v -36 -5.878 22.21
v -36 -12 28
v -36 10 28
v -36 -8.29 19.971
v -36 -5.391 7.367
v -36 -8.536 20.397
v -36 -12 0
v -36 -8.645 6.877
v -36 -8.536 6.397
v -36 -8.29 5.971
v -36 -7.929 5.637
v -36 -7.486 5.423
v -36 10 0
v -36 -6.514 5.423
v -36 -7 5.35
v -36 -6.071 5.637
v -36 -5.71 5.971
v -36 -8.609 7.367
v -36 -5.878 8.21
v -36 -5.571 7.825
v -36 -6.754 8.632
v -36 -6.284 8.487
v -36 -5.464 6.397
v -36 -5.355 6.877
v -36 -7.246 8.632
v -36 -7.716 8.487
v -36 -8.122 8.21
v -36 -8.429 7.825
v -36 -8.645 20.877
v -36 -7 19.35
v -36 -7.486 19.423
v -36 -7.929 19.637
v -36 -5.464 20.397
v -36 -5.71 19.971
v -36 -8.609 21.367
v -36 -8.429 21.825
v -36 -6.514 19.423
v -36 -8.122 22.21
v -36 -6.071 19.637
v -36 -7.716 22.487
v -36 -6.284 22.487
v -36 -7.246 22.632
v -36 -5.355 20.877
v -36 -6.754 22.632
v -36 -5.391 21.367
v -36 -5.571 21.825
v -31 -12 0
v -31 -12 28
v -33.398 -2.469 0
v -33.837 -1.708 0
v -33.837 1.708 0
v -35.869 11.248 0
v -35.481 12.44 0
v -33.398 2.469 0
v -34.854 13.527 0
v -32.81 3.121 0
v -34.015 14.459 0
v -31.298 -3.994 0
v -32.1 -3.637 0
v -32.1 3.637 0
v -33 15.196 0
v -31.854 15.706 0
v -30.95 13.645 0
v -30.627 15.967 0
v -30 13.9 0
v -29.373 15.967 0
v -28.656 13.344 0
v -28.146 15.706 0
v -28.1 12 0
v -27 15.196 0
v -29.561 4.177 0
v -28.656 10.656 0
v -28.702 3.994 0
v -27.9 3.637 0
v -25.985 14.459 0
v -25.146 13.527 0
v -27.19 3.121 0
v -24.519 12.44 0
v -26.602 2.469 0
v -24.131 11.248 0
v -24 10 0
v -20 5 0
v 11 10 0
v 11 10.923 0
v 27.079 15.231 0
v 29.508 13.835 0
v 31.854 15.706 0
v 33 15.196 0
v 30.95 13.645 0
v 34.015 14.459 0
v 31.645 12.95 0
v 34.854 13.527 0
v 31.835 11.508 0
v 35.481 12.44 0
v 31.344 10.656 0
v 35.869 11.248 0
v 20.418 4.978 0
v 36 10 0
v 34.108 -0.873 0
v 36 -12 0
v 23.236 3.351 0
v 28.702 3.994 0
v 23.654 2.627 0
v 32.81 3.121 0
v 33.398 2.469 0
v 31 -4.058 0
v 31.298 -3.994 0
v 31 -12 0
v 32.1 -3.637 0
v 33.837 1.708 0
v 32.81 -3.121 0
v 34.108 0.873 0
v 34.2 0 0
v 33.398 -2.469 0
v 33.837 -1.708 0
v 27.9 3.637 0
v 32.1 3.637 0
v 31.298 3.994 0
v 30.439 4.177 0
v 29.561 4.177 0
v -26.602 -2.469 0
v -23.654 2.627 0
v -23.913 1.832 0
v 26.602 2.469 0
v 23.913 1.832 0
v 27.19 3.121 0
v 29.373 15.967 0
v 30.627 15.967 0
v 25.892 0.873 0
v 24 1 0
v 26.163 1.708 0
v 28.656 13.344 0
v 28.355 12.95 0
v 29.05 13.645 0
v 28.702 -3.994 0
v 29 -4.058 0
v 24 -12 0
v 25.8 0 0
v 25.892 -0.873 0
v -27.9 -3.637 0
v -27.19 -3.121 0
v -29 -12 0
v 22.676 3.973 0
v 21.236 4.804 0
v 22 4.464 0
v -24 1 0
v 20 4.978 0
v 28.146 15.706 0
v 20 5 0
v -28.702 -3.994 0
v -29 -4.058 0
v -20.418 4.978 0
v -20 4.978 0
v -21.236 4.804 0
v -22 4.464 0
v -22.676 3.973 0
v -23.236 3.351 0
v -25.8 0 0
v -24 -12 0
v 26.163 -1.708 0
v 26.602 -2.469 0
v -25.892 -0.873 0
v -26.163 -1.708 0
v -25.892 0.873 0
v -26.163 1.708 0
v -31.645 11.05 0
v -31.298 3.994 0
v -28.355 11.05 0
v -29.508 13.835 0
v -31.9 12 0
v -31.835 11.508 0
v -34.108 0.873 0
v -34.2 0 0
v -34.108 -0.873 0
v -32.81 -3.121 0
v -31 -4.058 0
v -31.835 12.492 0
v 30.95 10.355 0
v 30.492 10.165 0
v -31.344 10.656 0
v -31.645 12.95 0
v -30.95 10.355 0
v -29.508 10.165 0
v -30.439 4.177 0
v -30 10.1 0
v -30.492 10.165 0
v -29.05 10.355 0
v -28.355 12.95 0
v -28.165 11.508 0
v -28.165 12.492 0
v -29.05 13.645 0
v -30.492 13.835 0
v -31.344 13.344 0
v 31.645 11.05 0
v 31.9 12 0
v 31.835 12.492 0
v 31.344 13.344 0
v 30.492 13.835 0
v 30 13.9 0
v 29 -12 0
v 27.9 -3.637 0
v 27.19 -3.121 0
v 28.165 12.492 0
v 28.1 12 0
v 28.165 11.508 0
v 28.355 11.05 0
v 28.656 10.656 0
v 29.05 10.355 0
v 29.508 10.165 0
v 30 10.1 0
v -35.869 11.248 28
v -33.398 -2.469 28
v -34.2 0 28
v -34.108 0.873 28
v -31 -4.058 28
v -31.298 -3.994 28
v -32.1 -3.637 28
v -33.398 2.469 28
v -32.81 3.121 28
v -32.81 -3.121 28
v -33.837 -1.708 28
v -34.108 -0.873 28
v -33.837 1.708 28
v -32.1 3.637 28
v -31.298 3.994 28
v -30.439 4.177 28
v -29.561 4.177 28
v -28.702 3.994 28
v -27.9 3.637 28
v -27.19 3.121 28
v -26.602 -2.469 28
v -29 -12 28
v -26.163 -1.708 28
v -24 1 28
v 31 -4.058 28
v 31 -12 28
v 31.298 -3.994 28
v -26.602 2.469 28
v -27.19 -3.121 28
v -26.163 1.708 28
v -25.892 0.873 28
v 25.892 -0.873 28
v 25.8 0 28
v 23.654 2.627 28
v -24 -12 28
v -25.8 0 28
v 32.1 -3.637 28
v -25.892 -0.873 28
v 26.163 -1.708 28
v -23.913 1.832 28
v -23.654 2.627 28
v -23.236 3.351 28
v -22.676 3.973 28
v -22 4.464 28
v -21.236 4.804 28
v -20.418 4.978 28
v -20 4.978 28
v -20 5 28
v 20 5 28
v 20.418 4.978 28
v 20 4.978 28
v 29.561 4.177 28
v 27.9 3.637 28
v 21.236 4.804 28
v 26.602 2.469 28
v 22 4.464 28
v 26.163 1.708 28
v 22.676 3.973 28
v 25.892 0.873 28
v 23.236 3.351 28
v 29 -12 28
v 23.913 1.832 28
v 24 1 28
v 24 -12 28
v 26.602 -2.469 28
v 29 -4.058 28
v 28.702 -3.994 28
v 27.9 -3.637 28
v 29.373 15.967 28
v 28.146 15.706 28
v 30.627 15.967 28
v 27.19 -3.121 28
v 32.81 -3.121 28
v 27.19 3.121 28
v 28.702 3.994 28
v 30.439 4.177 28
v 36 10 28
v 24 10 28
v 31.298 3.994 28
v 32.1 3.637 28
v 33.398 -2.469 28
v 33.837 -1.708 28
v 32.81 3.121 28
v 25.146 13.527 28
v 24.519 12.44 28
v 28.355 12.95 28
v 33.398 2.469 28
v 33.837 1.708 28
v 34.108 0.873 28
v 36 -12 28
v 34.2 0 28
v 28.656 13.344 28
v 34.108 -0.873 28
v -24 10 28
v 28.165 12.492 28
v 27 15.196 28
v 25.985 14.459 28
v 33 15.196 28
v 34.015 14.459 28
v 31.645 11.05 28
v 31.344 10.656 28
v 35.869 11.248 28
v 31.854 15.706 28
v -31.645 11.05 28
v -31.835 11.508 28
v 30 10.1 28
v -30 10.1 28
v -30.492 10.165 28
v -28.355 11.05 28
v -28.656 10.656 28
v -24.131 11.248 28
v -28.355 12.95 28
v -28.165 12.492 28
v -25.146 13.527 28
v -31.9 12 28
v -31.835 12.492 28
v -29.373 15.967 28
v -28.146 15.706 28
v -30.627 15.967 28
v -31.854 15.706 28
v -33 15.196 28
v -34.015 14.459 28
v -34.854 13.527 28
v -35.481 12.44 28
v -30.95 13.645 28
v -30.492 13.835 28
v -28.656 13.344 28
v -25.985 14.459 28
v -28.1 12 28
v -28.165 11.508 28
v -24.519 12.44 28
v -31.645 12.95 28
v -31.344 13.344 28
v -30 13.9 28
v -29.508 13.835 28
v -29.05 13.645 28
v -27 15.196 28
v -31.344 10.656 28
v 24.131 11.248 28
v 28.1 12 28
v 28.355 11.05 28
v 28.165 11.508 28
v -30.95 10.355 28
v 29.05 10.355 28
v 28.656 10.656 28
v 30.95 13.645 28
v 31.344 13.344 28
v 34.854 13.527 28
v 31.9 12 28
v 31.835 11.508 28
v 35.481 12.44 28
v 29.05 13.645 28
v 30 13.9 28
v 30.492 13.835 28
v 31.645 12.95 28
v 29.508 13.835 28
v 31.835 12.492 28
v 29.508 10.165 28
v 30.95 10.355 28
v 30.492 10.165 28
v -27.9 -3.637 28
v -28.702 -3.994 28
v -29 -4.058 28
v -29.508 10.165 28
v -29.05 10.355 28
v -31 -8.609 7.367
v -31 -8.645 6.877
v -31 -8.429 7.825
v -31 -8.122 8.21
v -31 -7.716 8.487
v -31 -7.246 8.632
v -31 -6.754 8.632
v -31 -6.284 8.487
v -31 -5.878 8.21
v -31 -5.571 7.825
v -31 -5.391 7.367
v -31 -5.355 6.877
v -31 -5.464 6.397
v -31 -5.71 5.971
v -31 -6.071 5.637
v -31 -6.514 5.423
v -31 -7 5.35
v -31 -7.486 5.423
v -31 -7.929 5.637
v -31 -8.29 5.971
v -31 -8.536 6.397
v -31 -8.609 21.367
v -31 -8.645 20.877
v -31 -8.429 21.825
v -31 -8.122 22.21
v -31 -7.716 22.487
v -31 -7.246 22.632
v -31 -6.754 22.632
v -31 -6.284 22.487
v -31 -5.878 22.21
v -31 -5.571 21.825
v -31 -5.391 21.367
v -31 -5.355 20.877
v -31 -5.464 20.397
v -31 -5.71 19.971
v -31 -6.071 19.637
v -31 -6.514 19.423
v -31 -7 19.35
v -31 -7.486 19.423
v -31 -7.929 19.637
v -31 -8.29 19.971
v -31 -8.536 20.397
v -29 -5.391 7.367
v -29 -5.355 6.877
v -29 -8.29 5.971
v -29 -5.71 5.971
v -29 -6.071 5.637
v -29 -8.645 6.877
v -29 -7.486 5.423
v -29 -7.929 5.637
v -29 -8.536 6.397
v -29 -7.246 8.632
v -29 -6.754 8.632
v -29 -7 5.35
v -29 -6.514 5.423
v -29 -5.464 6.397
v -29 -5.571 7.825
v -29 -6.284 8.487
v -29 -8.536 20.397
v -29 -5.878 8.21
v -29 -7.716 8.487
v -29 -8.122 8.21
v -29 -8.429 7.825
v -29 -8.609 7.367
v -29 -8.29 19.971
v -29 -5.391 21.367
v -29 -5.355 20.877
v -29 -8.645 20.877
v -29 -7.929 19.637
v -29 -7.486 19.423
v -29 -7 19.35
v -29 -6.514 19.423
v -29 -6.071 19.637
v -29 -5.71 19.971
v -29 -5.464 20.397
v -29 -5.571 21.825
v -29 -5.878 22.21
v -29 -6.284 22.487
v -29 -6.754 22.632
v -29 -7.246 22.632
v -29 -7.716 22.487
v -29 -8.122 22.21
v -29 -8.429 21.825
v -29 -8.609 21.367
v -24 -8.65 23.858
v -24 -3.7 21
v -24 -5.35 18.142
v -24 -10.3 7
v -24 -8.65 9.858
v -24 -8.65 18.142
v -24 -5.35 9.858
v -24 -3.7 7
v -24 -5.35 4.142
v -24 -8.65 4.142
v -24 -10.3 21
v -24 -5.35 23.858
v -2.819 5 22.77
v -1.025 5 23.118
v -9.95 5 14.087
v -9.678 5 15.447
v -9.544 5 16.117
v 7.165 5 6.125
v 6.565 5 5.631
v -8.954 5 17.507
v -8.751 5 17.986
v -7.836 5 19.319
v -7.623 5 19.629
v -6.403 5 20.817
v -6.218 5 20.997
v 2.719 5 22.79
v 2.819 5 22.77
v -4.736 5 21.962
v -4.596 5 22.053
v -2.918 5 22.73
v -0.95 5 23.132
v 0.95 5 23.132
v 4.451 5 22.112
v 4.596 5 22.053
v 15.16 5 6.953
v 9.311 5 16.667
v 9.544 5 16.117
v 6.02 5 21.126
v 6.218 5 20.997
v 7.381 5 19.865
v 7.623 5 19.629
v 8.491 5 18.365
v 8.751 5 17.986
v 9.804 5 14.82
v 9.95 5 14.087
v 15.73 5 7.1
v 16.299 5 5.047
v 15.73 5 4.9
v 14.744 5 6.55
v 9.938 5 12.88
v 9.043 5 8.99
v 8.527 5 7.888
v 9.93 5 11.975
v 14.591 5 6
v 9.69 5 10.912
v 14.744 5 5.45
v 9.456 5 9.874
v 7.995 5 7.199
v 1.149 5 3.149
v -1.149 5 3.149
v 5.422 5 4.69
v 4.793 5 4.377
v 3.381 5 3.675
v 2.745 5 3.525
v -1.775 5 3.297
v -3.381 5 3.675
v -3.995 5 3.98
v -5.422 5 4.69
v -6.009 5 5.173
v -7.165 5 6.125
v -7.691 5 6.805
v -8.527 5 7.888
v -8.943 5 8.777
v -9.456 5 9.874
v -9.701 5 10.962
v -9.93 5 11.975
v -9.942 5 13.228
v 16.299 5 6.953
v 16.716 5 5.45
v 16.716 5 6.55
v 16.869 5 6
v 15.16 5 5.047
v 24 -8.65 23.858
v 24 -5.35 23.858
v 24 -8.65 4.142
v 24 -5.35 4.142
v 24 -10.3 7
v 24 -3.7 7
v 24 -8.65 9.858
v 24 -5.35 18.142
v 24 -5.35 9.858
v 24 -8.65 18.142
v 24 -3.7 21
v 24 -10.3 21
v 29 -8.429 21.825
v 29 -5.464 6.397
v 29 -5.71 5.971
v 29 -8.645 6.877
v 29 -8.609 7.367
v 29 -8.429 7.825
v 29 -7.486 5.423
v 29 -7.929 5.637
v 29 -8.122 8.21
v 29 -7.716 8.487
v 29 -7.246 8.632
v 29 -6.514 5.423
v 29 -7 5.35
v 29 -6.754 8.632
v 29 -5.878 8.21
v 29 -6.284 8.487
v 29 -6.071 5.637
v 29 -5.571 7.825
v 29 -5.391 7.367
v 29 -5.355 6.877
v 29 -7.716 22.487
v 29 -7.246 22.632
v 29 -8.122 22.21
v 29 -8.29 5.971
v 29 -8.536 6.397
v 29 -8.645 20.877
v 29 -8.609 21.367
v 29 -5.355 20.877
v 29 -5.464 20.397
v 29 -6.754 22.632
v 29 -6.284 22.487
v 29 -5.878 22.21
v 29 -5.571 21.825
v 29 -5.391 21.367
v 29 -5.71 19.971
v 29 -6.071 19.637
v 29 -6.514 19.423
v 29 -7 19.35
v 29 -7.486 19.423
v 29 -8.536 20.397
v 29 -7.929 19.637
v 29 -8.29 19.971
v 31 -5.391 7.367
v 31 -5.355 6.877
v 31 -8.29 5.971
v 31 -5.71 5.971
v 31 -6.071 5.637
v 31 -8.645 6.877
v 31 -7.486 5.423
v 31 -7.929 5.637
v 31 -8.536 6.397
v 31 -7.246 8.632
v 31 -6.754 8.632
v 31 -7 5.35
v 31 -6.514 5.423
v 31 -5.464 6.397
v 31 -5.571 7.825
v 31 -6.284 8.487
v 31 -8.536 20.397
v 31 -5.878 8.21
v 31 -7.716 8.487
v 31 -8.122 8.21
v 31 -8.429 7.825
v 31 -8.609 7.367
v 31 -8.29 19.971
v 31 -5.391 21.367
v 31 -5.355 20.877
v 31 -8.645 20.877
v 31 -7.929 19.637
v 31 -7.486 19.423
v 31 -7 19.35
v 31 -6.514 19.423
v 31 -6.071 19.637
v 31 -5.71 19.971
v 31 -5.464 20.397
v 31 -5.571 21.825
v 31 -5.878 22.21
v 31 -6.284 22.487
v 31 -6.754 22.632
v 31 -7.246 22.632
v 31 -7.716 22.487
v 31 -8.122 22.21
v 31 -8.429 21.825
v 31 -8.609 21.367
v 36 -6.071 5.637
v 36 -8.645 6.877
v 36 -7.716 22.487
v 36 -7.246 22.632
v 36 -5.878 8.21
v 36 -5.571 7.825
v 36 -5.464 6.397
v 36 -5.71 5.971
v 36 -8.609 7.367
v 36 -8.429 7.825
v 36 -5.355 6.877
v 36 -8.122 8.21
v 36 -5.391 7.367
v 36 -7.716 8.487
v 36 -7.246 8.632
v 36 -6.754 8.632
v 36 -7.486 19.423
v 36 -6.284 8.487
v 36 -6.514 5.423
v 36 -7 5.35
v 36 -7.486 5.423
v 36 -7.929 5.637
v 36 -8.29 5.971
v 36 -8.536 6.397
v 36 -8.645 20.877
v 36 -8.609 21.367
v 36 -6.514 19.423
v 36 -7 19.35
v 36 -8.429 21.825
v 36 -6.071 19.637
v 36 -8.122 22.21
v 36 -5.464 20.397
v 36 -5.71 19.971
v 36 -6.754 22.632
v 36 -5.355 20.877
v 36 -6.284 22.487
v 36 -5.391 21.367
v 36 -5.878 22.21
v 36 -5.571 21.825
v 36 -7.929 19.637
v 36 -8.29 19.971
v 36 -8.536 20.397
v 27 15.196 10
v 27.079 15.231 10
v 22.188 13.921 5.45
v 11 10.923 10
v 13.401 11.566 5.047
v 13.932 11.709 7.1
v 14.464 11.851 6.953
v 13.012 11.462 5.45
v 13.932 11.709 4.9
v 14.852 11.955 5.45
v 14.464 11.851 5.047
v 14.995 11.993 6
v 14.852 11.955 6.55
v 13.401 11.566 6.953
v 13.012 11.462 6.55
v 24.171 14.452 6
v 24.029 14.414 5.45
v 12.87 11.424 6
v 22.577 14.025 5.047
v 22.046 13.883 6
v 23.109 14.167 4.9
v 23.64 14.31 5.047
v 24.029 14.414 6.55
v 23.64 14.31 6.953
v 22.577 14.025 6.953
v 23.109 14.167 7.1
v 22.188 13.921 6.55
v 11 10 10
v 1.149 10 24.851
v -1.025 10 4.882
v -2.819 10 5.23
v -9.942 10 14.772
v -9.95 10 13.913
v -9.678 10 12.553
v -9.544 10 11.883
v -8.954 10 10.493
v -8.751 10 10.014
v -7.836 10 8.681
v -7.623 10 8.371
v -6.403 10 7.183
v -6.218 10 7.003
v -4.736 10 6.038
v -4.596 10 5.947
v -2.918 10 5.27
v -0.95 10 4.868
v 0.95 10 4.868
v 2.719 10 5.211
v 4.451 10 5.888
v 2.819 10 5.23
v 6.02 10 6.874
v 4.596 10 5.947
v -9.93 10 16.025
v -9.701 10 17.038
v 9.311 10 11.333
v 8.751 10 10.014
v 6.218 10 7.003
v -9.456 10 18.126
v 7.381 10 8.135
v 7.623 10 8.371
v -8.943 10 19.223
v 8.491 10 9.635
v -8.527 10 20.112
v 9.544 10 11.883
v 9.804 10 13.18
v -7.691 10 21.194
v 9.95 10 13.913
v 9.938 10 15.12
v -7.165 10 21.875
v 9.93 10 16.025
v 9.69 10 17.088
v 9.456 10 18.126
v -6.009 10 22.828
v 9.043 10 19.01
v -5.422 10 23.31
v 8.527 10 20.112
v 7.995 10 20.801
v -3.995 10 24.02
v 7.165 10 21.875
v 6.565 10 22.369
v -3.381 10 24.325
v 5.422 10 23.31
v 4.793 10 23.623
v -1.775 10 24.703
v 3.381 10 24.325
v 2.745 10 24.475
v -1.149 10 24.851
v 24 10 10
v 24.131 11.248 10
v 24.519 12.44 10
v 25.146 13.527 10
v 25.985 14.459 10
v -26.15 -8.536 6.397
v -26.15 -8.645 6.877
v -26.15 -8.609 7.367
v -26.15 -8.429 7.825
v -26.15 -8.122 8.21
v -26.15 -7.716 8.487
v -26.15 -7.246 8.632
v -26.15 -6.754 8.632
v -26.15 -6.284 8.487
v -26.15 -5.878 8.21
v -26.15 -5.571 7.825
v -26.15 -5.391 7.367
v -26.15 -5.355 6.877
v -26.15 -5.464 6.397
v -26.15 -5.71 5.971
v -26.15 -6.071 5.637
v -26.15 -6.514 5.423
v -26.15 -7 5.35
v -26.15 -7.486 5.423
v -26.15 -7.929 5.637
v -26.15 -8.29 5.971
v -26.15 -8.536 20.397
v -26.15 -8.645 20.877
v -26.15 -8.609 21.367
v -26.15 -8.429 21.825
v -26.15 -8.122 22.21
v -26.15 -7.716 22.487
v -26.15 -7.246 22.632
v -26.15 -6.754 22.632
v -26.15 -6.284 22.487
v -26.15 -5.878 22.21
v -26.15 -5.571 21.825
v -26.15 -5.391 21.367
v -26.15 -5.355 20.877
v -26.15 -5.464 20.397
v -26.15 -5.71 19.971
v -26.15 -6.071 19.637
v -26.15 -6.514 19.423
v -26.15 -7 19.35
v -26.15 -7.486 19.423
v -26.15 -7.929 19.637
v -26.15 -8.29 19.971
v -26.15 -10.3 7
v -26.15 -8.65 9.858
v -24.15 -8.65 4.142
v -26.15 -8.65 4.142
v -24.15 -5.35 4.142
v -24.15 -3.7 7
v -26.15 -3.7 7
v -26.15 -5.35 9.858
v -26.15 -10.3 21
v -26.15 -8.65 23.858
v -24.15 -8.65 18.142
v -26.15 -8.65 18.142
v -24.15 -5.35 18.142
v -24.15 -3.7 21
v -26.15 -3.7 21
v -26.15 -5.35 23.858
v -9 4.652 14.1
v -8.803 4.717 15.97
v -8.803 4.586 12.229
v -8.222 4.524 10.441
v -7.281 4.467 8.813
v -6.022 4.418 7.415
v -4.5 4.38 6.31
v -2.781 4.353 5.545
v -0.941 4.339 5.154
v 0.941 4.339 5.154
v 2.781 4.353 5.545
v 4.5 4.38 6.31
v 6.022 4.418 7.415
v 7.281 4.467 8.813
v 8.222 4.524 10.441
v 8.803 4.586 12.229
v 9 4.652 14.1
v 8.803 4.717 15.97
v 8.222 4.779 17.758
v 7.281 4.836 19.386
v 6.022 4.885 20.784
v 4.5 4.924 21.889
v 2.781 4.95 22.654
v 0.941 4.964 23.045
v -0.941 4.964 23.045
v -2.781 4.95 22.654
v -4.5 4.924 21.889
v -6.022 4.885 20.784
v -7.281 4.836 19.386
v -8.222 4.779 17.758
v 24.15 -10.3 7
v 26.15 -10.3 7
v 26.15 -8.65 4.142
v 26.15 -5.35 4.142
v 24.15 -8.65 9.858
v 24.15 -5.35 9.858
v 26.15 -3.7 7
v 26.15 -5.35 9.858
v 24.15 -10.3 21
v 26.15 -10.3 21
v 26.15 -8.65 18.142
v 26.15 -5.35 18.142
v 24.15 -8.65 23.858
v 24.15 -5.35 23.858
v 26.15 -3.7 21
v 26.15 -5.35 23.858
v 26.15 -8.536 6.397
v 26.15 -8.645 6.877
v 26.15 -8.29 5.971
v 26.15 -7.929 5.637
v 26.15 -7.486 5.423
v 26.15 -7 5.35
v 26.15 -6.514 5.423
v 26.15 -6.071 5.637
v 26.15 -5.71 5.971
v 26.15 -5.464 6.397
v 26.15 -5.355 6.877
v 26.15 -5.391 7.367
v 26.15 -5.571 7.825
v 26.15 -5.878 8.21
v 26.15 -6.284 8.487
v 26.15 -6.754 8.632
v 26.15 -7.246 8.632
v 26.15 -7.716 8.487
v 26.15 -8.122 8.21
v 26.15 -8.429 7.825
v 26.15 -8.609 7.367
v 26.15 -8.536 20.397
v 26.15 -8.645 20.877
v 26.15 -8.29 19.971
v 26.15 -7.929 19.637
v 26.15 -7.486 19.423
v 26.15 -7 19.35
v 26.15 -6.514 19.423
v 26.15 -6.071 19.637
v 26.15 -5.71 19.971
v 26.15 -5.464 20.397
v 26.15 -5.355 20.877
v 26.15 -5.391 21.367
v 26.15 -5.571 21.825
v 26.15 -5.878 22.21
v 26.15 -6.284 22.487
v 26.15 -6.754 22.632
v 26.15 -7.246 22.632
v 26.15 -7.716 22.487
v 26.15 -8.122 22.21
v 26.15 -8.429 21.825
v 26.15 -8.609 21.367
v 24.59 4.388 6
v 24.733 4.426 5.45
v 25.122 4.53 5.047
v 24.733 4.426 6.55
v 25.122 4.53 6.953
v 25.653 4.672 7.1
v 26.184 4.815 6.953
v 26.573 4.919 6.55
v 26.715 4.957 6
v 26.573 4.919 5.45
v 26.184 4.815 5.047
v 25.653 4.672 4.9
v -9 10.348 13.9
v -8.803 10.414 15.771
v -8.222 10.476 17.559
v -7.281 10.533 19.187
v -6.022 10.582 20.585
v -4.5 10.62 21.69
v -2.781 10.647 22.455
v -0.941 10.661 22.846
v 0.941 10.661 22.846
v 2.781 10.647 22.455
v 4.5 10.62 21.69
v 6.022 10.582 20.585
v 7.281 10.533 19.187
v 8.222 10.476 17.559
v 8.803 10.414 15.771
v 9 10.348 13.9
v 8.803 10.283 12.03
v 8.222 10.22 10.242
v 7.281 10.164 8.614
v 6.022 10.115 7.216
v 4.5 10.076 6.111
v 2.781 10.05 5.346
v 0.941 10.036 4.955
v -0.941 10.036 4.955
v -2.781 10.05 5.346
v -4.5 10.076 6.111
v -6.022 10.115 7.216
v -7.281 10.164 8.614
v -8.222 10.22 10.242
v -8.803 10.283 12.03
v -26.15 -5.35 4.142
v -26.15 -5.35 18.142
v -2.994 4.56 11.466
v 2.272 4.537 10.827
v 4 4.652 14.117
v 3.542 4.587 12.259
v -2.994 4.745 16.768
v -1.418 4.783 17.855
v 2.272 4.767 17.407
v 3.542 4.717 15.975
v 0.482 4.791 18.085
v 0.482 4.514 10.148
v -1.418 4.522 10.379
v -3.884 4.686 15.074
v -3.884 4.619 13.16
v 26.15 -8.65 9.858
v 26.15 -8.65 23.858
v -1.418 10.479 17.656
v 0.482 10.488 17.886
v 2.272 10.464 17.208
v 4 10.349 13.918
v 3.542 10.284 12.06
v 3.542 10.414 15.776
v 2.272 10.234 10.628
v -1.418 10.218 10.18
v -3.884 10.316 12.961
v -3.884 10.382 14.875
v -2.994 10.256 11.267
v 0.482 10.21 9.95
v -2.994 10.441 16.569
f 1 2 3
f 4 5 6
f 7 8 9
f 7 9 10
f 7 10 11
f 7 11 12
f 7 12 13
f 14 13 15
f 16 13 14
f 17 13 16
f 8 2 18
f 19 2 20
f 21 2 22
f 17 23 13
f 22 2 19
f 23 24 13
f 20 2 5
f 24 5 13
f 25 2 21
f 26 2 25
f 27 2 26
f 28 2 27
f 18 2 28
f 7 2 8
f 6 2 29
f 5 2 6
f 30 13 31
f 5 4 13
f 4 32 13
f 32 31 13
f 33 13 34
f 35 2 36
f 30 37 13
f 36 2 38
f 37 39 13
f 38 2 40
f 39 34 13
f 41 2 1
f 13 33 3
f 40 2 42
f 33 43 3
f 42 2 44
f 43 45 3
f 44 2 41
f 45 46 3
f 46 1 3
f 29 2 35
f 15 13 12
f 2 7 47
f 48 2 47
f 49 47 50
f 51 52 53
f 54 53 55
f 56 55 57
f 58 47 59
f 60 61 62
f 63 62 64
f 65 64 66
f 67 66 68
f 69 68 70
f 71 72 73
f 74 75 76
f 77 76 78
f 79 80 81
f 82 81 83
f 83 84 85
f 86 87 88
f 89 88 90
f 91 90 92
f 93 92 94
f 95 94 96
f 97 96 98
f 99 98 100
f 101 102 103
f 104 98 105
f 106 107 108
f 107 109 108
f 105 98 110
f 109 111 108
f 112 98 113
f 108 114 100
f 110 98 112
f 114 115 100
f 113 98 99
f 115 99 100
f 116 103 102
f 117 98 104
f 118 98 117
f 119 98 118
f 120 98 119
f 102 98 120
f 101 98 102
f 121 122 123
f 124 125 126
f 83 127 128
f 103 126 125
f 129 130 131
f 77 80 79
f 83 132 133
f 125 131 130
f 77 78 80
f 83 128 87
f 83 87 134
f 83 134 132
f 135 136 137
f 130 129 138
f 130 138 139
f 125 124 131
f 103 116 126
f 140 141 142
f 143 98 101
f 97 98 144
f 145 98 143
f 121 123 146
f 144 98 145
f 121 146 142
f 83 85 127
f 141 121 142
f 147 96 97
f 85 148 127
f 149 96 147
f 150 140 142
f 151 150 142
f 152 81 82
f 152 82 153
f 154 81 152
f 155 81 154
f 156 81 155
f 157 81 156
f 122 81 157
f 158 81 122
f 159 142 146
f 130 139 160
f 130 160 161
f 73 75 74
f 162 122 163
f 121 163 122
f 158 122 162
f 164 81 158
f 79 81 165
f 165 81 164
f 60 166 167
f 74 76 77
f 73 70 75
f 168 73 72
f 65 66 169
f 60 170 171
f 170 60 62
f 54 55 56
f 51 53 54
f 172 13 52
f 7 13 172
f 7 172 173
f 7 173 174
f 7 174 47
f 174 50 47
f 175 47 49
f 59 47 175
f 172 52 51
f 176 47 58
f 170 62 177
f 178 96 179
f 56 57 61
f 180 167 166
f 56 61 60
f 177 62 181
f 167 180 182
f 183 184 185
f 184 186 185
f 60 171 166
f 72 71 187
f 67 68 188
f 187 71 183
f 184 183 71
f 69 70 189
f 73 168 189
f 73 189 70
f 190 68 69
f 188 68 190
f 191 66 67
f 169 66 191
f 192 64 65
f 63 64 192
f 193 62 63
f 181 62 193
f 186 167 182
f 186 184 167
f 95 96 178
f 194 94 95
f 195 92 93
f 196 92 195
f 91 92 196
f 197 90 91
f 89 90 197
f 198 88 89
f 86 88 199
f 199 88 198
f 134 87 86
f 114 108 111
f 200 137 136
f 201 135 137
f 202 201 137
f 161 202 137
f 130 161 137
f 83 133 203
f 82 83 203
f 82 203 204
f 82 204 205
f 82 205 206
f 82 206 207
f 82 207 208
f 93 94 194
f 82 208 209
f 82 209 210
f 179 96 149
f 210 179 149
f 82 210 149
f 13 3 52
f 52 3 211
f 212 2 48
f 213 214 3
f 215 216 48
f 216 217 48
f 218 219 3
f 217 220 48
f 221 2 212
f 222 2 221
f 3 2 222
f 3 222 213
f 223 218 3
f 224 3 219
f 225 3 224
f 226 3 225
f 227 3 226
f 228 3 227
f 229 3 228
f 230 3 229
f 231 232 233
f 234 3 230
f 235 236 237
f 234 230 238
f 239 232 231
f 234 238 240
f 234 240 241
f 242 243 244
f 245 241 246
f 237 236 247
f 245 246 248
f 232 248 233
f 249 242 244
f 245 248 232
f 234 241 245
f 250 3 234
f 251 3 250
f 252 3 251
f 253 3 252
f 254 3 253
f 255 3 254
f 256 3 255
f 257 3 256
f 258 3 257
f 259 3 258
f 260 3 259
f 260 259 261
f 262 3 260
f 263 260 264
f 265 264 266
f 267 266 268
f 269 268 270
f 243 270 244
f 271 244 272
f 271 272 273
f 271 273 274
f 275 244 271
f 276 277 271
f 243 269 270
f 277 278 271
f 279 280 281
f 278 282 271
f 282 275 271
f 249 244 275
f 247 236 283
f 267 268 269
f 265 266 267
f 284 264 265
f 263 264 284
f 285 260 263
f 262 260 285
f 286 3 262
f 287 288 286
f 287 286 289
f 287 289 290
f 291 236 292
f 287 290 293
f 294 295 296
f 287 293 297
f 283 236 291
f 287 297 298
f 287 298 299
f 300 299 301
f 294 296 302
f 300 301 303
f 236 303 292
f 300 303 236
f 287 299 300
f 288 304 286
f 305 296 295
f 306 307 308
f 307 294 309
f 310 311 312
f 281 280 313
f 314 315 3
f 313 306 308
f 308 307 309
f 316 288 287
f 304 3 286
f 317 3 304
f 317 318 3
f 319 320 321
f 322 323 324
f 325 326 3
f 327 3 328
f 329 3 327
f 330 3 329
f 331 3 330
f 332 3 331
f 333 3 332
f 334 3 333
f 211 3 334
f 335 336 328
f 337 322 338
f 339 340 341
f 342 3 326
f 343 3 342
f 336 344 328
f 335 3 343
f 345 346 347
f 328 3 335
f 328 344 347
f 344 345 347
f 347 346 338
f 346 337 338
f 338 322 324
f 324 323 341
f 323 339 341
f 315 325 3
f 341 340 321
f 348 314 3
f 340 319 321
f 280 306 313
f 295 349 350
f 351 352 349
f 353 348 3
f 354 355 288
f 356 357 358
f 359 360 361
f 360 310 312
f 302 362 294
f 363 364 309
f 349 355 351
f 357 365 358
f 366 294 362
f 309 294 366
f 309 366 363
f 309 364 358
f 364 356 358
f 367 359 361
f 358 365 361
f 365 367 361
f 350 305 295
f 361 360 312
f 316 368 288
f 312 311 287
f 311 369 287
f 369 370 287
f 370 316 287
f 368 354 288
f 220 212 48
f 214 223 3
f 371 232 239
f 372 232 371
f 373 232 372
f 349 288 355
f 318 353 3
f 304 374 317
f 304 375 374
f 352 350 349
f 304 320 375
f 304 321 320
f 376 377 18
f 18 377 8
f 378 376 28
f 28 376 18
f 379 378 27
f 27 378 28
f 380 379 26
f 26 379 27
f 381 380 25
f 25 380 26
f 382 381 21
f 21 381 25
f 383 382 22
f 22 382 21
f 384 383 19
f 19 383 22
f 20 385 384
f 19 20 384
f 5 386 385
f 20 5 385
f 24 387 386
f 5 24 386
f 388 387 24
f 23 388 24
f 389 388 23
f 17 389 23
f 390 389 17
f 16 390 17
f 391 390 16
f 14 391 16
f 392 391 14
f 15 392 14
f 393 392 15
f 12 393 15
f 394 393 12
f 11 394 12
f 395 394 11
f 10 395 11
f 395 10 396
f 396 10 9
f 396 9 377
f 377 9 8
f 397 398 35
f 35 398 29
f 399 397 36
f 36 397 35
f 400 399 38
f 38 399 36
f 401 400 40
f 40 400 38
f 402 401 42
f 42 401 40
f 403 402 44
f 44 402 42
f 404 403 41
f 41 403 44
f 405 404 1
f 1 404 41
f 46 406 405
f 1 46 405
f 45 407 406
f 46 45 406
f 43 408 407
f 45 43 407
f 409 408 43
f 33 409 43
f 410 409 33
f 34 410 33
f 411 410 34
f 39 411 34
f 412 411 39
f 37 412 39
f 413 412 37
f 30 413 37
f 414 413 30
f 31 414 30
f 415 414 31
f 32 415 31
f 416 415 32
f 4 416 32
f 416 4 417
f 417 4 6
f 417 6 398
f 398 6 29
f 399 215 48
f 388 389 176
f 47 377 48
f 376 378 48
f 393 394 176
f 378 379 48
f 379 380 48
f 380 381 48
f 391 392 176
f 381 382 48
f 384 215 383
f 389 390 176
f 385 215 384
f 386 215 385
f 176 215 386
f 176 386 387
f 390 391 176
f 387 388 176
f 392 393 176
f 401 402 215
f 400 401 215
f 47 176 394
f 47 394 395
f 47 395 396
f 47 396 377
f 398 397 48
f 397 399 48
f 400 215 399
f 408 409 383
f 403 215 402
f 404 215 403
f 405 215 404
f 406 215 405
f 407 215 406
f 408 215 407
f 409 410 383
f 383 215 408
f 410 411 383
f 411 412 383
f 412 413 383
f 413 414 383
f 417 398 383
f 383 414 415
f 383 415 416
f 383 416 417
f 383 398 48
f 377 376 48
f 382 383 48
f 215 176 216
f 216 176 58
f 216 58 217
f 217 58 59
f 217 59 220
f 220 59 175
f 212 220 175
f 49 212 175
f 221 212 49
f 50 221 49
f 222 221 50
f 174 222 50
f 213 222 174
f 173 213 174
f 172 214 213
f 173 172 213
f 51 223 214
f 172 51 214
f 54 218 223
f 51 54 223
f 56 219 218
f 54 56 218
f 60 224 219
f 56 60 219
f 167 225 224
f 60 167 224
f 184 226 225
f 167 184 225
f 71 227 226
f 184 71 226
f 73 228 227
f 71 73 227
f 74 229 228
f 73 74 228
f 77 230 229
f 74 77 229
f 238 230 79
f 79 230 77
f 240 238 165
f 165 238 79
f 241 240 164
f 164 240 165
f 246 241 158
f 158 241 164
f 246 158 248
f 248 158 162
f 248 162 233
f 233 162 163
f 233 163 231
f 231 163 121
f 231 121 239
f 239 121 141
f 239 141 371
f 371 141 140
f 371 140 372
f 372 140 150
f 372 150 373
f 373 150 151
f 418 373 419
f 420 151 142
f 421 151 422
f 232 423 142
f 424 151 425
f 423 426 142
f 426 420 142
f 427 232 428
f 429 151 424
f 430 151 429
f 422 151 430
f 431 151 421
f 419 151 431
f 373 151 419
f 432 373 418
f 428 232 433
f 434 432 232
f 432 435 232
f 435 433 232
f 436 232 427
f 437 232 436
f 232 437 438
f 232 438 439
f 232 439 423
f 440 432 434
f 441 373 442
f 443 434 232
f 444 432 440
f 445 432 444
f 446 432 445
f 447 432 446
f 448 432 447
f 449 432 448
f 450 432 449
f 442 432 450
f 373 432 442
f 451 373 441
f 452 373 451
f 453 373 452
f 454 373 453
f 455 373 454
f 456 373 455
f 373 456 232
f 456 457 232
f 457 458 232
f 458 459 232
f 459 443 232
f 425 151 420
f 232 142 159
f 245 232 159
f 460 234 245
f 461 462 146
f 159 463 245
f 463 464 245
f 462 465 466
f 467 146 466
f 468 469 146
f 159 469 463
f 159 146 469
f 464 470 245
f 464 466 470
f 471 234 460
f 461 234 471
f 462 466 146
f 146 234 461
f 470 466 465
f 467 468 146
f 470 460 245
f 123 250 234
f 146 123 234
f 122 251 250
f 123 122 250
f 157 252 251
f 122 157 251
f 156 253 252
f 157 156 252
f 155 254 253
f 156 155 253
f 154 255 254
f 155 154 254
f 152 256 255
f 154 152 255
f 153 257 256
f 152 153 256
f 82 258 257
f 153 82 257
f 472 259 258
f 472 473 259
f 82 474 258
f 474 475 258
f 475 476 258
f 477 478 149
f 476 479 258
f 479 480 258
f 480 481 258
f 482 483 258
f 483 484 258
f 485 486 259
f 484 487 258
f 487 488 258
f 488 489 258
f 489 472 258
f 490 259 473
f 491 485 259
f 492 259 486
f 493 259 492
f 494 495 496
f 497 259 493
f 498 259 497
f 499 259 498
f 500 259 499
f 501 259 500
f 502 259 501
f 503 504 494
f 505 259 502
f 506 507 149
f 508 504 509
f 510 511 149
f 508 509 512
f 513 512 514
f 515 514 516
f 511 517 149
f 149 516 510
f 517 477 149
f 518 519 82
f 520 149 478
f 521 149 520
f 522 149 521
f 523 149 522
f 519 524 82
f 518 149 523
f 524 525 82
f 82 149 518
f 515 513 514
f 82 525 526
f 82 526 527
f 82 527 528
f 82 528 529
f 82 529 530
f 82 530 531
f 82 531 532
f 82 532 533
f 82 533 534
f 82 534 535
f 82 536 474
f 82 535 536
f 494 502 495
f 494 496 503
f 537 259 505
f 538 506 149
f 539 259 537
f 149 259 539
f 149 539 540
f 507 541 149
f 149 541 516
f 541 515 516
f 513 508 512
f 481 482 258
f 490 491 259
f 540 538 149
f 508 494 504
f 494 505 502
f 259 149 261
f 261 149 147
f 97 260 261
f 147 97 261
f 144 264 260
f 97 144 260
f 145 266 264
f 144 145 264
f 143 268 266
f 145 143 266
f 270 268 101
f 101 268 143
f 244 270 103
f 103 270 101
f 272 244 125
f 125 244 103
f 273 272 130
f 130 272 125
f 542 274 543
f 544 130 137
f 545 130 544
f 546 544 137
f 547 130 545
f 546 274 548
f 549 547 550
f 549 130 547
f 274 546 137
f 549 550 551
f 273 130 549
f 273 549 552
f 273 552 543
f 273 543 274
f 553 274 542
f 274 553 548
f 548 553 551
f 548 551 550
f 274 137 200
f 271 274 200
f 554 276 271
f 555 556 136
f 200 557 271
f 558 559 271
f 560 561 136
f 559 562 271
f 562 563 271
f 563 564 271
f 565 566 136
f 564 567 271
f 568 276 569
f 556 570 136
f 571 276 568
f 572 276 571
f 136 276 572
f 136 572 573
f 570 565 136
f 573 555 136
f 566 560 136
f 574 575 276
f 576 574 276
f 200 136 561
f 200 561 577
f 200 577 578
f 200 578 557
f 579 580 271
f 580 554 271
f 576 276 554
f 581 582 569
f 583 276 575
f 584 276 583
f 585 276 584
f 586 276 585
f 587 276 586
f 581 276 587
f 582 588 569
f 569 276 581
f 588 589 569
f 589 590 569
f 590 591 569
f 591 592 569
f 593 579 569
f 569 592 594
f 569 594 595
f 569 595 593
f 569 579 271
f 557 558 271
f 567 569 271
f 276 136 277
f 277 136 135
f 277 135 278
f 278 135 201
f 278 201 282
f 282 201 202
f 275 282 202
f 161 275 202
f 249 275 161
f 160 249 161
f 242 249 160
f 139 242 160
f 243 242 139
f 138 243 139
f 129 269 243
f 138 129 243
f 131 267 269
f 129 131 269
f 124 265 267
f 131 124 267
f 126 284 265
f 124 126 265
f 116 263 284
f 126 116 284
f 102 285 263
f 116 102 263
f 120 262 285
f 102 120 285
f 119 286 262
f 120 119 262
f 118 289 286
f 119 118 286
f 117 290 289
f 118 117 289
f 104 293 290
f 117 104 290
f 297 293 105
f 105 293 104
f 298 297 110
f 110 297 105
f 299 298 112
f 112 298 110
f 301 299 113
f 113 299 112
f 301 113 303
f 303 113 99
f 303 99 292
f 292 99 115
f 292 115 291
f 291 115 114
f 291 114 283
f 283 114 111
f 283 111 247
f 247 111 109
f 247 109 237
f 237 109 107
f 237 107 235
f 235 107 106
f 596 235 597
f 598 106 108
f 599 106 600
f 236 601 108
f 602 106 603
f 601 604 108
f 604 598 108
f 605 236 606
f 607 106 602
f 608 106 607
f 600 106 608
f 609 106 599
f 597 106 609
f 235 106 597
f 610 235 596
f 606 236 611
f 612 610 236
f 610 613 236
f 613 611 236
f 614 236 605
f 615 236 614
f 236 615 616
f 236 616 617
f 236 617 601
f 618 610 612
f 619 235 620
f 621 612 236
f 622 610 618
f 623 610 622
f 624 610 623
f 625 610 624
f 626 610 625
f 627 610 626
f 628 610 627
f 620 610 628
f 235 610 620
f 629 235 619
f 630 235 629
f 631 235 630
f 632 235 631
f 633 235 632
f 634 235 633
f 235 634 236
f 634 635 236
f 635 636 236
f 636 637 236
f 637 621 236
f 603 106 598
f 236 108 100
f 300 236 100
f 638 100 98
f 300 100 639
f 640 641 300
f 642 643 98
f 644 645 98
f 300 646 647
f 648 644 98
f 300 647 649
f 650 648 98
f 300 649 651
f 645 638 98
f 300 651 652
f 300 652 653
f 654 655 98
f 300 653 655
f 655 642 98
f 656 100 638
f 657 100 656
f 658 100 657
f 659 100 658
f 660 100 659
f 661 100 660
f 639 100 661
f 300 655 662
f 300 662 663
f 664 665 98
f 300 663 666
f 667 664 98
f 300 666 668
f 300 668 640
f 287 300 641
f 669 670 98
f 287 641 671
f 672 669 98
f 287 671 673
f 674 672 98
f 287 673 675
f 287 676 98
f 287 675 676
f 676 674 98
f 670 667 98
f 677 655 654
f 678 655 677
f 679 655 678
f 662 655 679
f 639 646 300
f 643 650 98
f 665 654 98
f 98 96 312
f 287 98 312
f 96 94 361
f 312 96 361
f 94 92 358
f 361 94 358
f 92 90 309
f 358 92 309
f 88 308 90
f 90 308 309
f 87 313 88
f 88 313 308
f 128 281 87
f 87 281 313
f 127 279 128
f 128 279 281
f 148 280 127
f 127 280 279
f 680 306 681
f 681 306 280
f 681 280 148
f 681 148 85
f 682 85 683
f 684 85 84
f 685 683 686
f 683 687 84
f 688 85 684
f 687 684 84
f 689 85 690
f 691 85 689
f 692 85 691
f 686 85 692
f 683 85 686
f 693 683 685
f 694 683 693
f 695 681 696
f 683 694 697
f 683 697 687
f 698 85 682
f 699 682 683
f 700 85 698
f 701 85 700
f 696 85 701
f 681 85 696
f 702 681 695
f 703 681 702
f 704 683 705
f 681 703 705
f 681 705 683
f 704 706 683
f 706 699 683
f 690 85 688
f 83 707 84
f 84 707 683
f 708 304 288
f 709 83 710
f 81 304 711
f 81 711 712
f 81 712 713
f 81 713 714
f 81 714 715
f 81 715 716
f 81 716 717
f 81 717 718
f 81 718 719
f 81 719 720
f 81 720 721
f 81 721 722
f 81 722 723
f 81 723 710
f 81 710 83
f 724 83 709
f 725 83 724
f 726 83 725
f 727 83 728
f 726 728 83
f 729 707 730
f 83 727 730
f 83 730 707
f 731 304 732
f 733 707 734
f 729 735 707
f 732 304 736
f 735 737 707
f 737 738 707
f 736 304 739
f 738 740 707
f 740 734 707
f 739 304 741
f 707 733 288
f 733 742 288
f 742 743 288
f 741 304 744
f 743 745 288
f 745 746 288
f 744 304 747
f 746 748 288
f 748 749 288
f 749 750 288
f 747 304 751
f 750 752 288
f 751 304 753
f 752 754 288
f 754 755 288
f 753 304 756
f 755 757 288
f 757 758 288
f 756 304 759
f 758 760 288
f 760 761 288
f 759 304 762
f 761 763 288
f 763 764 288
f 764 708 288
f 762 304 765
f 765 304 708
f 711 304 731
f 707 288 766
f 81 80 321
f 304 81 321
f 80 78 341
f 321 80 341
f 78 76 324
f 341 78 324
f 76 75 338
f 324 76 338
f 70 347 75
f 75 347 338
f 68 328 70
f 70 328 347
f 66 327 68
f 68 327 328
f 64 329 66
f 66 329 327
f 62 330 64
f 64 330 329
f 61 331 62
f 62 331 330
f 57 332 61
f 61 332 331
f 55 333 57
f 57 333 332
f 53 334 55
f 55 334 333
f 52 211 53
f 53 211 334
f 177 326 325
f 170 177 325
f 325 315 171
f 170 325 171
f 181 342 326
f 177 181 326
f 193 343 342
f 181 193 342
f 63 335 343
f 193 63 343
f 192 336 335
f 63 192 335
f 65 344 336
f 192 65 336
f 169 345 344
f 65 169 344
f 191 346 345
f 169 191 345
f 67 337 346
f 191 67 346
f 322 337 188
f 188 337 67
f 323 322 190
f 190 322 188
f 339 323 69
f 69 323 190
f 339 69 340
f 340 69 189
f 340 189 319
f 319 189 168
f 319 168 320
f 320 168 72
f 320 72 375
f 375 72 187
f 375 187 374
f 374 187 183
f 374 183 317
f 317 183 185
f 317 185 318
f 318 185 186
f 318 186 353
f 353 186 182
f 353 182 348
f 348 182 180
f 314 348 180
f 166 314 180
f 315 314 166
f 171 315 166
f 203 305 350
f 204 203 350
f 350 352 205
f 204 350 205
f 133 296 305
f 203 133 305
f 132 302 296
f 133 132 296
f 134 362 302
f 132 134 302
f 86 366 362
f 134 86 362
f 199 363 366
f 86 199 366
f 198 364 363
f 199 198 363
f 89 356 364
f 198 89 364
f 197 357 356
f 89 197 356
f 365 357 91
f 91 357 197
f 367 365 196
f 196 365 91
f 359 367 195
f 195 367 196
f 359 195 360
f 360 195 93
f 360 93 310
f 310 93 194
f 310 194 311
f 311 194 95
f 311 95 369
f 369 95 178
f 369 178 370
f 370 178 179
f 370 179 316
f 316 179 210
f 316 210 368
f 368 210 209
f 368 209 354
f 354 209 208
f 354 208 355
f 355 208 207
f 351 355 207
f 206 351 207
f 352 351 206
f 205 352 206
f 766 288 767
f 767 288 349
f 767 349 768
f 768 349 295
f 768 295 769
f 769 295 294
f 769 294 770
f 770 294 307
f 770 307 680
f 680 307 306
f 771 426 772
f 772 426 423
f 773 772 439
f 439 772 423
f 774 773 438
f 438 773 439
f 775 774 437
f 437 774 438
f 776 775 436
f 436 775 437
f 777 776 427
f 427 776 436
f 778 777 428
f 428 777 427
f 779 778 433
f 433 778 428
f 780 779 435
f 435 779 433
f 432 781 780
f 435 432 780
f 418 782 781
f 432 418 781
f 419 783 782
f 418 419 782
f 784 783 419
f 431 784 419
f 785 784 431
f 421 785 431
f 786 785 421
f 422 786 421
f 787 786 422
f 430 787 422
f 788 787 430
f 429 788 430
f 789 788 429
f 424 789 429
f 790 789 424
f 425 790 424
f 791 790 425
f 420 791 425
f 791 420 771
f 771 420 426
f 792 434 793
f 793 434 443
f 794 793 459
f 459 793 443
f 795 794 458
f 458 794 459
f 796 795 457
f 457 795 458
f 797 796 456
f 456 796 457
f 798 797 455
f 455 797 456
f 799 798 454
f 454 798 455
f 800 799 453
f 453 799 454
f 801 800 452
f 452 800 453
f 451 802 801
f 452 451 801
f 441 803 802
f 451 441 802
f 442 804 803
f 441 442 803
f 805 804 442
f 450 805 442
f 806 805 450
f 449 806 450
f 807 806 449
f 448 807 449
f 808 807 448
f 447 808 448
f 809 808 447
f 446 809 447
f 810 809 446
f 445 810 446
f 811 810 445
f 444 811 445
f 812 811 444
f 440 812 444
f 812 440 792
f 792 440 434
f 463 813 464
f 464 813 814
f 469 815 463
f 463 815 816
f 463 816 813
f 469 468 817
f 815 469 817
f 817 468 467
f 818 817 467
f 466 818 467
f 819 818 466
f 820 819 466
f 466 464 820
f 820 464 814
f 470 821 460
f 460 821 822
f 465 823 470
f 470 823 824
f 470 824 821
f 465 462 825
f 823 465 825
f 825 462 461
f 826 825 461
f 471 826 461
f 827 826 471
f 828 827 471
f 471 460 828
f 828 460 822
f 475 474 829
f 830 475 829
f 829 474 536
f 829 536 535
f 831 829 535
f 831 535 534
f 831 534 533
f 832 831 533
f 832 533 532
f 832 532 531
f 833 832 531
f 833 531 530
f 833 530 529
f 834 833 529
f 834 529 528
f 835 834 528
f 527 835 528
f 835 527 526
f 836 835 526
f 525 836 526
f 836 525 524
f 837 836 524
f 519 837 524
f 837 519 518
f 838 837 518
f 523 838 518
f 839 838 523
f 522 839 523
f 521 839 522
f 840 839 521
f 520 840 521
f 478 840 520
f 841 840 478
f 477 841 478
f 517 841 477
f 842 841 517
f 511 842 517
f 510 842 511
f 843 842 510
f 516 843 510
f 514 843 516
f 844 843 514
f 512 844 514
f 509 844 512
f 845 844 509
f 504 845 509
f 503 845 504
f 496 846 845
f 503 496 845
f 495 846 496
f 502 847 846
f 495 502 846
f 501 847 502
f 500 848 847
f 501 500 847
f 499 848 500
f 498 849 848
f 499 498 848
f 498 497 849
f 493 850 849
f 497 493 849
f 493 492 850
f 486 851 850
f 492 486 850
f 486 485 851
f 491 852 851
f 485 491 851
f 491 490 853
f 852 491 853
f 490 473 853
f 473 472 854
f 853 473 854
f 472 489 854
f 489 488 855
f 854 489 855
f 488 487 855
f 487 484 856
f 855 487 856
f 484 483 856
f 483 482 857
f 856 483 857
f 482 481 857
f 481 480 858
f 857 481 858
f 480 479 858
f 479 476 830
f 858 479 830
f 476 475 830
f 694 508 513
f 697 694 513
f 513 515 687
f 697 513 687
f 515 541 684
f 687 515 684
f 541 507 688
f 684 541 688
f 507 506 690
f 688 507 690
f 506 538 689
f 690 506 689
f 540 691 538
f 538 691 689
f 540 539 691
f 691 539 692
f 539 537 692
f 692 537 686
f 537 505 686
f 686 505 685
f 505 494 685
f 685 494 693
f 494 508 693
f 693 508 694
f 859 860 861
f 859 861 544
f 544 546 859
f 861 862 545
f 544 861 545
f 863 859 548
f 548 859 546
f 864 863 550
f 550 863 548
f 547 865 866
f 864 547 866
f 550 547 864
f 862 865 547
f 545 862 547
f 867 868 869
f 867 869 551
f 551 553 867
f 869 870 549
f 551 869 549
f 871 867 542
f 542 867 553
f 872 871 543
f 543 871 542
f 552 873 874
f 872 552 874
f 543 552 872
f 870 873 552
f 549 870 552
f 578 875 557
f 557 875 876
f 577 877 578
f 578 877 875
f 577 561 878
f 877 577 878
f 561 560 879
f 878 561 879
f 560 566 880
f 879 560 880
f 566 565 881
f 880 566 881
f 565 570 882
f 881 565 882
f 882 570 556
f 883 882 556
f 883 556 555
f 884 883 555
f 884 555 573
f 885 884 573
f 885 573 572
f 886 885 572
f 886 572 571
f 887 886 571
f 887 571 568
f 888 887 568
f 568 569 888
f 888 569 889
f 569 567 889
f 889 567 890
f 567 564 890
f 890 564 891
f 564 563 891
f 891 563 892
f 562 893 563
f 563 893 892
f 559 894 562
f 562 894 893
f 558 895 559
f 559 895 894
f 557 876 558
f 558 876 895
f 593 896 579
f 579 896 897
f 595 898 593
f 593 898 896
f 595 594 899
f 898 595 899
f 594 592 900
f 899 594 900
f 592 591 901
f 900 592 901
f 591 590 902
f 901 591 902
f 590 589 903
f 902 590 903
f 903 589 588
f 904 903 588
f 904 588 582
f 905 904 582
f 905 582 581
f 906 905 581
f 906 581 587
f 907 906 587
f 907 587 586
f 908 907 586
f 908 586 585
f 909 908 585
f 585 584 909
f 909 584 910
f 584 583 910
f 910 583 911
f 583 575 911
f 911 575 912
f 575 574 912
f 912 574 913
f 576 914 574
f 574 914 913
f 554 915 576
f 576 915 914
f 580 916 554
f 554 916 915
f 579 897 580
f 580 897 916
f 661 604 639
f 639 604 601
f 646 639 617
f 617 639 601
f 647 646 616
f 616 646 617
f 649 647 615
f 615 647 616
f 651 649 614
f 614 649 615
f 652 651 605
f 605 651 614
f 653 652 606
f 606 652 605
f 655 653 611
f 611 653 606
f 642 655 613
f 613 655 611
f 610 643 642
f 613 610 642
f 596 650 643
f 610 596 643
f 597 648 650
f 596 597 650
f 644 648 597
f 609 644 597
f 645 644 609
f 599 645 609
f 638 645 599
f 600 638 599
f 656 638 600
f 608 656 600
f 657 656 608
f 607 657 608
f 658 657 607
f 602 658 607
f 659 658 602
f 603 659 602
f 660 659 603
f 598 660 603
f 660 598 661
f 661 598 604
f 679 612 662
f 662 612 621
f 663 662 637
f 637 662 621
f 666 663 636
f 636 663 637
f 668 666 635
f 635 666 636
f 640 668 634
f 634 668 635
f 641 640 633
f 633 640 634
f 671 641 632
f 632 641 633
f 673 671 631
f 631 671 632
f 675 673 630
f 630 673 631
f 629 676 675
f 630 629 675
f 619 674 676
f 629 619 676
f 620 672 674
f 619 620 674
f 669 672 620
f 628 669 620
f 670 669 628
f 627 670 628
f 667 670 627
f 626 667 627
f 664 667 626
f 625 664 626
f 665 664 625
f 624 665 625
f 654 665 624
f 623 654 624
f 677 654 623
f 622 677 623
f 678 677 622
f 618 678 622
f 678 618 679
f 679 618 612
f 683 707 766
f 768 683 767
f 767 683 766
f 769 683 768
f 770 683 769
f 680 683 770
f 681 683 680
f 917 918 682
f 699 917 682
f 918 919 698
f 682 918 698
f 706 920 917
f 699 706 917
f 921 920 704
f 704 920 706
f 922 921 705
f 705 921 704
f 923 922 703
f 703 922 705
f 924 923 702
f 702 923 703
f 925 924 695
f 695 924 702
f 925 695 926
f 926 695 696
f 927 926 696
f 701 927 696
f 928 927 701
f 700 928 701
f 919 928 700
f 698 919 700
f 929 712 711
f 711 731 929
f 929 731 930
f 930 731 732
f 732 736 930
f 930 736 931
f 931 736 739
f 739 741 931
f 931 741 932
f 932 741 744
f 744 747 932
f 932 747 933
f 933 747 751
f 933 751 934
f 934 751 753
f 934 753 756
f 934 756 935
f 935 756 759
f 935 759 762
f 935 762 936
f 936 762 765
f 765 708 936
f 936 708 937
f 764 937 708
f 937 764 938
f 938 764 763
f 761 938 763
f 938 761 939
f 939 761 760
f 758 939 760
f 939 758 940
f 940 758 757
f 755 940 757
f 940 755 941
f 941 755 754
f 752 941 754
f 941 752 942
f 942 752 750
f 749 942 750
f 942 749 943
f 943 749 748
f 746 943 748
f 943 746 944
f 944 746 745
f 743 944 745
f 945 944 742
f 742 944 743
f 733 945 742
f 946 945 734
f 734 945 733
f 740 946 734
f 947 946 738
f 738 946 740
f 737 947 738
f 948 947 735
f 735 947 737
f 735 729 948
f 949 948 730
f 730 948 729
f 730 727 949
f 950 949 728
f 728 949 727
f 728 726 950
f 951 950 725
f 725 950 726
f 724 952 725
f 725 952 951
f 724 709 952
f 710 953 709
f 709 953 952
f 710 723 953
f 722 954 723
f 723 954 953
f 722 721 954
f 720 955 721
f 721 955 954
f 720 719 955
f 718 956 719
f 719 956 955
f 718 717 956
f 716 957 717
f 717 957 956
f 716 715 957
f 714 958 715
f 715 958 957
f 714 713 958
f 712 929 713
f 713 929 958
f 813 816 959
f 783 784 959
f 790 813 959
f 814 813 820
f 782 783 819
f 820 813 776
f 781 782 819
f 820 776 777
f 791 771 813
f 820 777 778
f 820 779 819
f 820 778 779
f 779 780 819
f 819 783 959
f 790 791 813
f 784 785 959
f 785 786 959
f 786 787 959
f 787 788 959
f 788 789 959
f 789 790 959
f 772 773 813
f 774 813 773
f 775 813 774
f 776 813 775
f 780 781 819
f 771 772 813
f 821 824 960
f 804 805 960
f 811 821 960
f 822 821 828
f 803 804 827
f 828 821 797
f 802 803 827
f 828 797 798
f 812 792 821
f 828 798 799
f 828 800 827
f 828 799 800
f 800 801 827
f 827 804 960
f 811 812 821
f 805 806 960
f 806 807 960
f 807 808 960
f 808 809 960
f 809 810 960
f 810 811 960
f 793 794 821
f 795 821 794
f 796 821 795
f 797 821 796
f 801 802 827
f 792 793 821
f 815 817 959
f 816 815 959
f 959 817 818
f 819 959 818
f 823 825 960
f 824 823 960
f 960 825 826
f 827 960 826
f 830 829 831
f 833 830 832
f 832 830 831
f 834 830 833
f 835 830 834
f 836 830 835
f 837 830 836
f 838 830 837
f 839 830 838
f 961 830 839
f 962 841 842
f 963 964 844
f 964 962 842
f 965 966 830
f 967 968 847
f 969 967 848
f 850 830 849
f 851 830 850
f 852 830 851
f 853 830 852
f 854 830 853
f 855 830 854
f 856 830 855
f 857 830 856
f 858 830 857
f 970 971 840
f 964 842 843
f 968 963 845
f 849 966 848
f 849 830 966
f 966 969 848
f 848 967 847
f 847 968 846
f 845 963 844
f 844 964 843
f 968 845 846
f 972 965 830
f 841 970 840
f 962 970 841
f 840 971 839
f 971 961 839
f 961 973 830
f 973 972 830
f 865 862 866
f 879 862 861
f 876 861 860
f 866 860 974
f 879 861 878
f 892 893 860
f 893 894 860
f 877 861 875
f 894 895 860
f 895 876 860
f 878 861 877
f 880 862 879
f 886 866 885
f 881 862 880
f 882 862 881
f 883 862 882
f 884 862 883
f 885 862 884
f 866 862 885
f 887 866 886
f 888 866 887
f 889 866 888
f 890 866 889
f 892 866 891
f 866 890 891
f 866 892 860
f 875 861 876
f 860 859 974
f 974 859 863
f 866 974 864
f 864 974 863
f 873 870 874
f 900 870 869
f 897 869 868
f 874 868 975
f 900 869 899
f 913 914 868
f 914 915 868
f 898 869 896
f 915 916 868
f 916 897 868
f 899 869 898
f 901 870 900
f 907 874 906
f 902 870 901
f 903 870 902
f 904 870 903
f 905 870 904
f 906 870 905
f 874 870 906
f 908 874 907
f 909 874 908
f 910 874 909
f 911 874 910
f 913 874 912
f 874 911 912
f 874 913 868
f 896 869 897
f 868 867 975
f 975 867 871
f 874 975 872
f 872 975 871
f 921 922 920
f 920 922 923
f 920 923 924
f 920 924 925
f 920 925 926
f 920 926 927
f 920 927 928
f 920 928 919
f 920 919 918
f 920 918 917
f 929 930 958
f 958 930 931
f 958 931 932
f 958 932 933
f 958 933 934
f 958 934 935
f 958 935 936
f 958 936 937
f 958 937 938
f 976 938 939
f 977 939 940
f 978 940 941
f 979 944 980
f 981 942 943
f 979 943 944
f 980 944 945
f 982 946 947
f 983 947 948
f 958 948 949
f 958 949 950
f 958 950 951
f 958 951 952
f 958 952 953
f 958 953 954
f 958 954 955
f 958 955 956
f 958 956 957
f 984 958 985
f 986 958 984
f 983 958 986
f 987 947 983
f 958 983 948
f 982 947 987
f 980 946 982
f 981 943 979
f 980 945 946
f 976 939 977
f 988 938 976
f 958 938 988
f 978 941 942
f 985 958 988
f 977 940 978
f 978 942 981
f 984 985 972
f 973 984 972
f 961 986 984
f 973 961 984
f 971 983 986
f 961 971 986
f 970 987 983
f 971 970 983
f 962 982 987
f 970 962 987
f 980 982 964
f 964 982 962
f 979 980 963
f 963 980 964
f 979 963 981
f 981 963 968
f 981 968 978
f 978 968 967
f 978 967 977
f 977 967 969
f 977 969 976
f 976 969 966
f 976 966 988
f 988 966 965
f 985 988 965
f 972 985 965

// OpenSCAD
// file: bracket.scad
$fa = 12;
$fs = 0.5;

w = 60; // Smooth rod distance (center to center)

module screws() {
  for (x = [-w/2, w/2]) {
    translate([x, 0, 0]) {
      // Push-through M3 screw hole.
      translate([0, -6, 0]) rotate([0, 90, 0])
	cylinder(r=1.65, h=20, center=true);
      // M3 nut holder.
      translate([-x/5, -6, 0])
	rotate([30, 0, 0]) rotate([0, 90, 0])
	cylinder(r=3.3, h=2.3, center=true, $fn=6);
    }
  }
}

module bracket(h) {
  difference() {
    union() {
      translate([0, -1, 0]) cube([w+12, 22, h], center=true);
      // Sandwich mount.
      translate([-w/2, 10, 0]) cylinder(r=6, h=h, center=true);
      translate([w/2, 10, 0]) cylinder(r=6, h=h, center=true);
    }
    // Sandwich mount.
    translate([-w/2, 12, 0]) cylinder(r=1.9, h=h+1, center=true);
    translate([w/2, 12, 0]) cylinder(r=1.9, h=h+1, center=true);
    // Smooth rod mounting slots.
    for (x = [-w/2, w/2]) {
      translate([x, 0, 0]) {
	cylinder(r=4.2, h=h+1, center=true);
	translate([0, -10, 0]) cube([2, 20, h+1], center=true);
      }
    }
    // Belt path.
    translate([0, -5, 0]) cube([w-20, 20, h+1], center=true);
    translate([0, -9, 0]) cube([w-12, 20, h+1], center=true);
    translate([-w/2+10, 1, 0]) cylinder(r=4, h=h+1, center=true);
    translate([w/2-10, 1, 0]) cylinder(r=4, h=h+1, center=true);
  }
}

translate([0, 0, 10]) bracket(20);
// file: configuration.scad
// Bearing dimensions: ID, OD, W
bearing623 = [3, 10, 4];
bearing624 = [4, 13, 5];
bearing608 = [8, 22, 7];
bearinglm8uu = [8, 15, 25];
bearinglm10uu = [10, 19, 29];
bearinglm12uu = [12, 21, 31];

mini = true; // true = Rostock mini, false = whatever ya want

small_pulley = mini ? false : true;  // true = 16 thooth GT2, false = 20 tooth GT2

smooth_rod_separation = 60;
smooth_rod_length = mini ? 450 : 1000;
smooth_rod_radius = mini ? 4 : 6;
smooth_rod_bearing = mini ? bearinglm8uu : bearinglm12uu;

bracket_fin_length = mini ? 45 : 45;
bracket_bracket_length = 30;
bracket_side_thickness = mini ? 12 : 16;
bracket_screw_separation = 15;

motor_end_height = mini ? 44 : 50;
motor_height_offset = (motor_end_height - 42 - 2)/2; // Height offset of nema 17 motor (we will put at top end of the bracket)

idler_end_height = 28;
idler_bearing = small_pulley ? bearing624 : bearing608;
idler_height_offset = idler_bearing[1]/2 + 5; // Height offset of idler (we will put at bottom end of the bracket)

fixing_end_height = 30;
fixing_ends = mini ? false : true;  // Extra fixing brackets

motor_end_total = mini ? motor_end_height : 125;
idler_end_total = mini ? idler_end_height : 80;

platform_thickness = 8;
platform_hinge_offset = 33;

bed_thickness = 12;
pcb_thickness = 2;
pcb_side = mini ? 150 : 200;

rod_separation = 50;
rod_length = mini ? 150 : 284;
rod_radius = mini ? 75 : 142;

// These are needed by modules in a couple of different files
carriage_height = smooth_rod_bearing[2];
carriage_hinge_offset = smooth_rod_bearing[1]/2+14.5;

box_idler = mini ? false : true;        // If true, add boxing around idler bearing to reduce axle torque
idler_end_bracing = mini ? "none" : "brackets";       // "none", "fins", "brackets"
motor_end_bracing = mini ? "fins" : "brackets";    // If true, add fins to the brackets to allow fixing triangular sides
fixing_end_bracing = "brackets";
side_panels = fixing_ends;

bottom_endstops = false; // If true, adds extra mount points to the platform

ball_joints = mini ? false : true;
ball_rad = 9.5 / 2 + 0.2; // Add a little extra radius for glue
cup_rad = ball_rad + 1;
cup_offset = cup_rad-platform_thickness/2;
// main file
include <configuration.scad>
use <bracket.scad>

h = idler_end_height; // Total height.
tilt = 2; // Tilt bearings upward (the timing belt is pulling pretty hard).
          // 2 degree tilt caused belts to slide off the bearings

module bearing_mount() {
  translate([0, 0, 2.3]) cylinder(r1=12, r2=9, h=1.1, center=true);
  translate([0, 0, -2.3]) cylinder(r1=9, r2=12, h=1.1, center=true);
}

x = 17.7; // Micro switch center.
y = 16; // Micro switch center.

module idler_end() {
  translate([0, 0, h/2]) 
  difference() {
    union() {
      bracket(h);
      translate([0, 7.5, 0]) rotate([90 - tilt, 0, 0]) bearing_mount();
      // Micro switch placeholder.
      % translate([x, y, -h/2+4]) rotate([0, 0, 15])
          cube([19.6, 6.34, 10.2], center=true);
      difference() {
        translate([20, 11.88, -h/2+5])
          cube([18, 8, 10], center=true);
        translate([x, y, -h/2+4]) rotate([0, 0, 15])
          cube([30, 6.34, 20], center=true);
        translate([30, 12, -h/2+5])
          cylinder(r=3, h=20, center=true);
      }
    }
    translate([x, y, -h/2+6]) rotate([0, 0, 15]) {
      translate([-9.5/2, 0, 0]) rotate([90, 0, 0])
	cylinder(r=1.1, h=26, center=true, $fn=12);
      translate([9.5/2, 0, 0]) rotate([90, 0, 0])
	cylinder(r=1.1, h=26, center=true, $fn=12);
    }
    translate([0, 8, 0]) rotate([90 - tilt, 0, 0])
      cylinder(r=4, h=40, center=true);
    for (i = [-1, 1]) for (z = [-7, 7])
      translate([i, -1, z]) screws();
  }
}

idler_end();
